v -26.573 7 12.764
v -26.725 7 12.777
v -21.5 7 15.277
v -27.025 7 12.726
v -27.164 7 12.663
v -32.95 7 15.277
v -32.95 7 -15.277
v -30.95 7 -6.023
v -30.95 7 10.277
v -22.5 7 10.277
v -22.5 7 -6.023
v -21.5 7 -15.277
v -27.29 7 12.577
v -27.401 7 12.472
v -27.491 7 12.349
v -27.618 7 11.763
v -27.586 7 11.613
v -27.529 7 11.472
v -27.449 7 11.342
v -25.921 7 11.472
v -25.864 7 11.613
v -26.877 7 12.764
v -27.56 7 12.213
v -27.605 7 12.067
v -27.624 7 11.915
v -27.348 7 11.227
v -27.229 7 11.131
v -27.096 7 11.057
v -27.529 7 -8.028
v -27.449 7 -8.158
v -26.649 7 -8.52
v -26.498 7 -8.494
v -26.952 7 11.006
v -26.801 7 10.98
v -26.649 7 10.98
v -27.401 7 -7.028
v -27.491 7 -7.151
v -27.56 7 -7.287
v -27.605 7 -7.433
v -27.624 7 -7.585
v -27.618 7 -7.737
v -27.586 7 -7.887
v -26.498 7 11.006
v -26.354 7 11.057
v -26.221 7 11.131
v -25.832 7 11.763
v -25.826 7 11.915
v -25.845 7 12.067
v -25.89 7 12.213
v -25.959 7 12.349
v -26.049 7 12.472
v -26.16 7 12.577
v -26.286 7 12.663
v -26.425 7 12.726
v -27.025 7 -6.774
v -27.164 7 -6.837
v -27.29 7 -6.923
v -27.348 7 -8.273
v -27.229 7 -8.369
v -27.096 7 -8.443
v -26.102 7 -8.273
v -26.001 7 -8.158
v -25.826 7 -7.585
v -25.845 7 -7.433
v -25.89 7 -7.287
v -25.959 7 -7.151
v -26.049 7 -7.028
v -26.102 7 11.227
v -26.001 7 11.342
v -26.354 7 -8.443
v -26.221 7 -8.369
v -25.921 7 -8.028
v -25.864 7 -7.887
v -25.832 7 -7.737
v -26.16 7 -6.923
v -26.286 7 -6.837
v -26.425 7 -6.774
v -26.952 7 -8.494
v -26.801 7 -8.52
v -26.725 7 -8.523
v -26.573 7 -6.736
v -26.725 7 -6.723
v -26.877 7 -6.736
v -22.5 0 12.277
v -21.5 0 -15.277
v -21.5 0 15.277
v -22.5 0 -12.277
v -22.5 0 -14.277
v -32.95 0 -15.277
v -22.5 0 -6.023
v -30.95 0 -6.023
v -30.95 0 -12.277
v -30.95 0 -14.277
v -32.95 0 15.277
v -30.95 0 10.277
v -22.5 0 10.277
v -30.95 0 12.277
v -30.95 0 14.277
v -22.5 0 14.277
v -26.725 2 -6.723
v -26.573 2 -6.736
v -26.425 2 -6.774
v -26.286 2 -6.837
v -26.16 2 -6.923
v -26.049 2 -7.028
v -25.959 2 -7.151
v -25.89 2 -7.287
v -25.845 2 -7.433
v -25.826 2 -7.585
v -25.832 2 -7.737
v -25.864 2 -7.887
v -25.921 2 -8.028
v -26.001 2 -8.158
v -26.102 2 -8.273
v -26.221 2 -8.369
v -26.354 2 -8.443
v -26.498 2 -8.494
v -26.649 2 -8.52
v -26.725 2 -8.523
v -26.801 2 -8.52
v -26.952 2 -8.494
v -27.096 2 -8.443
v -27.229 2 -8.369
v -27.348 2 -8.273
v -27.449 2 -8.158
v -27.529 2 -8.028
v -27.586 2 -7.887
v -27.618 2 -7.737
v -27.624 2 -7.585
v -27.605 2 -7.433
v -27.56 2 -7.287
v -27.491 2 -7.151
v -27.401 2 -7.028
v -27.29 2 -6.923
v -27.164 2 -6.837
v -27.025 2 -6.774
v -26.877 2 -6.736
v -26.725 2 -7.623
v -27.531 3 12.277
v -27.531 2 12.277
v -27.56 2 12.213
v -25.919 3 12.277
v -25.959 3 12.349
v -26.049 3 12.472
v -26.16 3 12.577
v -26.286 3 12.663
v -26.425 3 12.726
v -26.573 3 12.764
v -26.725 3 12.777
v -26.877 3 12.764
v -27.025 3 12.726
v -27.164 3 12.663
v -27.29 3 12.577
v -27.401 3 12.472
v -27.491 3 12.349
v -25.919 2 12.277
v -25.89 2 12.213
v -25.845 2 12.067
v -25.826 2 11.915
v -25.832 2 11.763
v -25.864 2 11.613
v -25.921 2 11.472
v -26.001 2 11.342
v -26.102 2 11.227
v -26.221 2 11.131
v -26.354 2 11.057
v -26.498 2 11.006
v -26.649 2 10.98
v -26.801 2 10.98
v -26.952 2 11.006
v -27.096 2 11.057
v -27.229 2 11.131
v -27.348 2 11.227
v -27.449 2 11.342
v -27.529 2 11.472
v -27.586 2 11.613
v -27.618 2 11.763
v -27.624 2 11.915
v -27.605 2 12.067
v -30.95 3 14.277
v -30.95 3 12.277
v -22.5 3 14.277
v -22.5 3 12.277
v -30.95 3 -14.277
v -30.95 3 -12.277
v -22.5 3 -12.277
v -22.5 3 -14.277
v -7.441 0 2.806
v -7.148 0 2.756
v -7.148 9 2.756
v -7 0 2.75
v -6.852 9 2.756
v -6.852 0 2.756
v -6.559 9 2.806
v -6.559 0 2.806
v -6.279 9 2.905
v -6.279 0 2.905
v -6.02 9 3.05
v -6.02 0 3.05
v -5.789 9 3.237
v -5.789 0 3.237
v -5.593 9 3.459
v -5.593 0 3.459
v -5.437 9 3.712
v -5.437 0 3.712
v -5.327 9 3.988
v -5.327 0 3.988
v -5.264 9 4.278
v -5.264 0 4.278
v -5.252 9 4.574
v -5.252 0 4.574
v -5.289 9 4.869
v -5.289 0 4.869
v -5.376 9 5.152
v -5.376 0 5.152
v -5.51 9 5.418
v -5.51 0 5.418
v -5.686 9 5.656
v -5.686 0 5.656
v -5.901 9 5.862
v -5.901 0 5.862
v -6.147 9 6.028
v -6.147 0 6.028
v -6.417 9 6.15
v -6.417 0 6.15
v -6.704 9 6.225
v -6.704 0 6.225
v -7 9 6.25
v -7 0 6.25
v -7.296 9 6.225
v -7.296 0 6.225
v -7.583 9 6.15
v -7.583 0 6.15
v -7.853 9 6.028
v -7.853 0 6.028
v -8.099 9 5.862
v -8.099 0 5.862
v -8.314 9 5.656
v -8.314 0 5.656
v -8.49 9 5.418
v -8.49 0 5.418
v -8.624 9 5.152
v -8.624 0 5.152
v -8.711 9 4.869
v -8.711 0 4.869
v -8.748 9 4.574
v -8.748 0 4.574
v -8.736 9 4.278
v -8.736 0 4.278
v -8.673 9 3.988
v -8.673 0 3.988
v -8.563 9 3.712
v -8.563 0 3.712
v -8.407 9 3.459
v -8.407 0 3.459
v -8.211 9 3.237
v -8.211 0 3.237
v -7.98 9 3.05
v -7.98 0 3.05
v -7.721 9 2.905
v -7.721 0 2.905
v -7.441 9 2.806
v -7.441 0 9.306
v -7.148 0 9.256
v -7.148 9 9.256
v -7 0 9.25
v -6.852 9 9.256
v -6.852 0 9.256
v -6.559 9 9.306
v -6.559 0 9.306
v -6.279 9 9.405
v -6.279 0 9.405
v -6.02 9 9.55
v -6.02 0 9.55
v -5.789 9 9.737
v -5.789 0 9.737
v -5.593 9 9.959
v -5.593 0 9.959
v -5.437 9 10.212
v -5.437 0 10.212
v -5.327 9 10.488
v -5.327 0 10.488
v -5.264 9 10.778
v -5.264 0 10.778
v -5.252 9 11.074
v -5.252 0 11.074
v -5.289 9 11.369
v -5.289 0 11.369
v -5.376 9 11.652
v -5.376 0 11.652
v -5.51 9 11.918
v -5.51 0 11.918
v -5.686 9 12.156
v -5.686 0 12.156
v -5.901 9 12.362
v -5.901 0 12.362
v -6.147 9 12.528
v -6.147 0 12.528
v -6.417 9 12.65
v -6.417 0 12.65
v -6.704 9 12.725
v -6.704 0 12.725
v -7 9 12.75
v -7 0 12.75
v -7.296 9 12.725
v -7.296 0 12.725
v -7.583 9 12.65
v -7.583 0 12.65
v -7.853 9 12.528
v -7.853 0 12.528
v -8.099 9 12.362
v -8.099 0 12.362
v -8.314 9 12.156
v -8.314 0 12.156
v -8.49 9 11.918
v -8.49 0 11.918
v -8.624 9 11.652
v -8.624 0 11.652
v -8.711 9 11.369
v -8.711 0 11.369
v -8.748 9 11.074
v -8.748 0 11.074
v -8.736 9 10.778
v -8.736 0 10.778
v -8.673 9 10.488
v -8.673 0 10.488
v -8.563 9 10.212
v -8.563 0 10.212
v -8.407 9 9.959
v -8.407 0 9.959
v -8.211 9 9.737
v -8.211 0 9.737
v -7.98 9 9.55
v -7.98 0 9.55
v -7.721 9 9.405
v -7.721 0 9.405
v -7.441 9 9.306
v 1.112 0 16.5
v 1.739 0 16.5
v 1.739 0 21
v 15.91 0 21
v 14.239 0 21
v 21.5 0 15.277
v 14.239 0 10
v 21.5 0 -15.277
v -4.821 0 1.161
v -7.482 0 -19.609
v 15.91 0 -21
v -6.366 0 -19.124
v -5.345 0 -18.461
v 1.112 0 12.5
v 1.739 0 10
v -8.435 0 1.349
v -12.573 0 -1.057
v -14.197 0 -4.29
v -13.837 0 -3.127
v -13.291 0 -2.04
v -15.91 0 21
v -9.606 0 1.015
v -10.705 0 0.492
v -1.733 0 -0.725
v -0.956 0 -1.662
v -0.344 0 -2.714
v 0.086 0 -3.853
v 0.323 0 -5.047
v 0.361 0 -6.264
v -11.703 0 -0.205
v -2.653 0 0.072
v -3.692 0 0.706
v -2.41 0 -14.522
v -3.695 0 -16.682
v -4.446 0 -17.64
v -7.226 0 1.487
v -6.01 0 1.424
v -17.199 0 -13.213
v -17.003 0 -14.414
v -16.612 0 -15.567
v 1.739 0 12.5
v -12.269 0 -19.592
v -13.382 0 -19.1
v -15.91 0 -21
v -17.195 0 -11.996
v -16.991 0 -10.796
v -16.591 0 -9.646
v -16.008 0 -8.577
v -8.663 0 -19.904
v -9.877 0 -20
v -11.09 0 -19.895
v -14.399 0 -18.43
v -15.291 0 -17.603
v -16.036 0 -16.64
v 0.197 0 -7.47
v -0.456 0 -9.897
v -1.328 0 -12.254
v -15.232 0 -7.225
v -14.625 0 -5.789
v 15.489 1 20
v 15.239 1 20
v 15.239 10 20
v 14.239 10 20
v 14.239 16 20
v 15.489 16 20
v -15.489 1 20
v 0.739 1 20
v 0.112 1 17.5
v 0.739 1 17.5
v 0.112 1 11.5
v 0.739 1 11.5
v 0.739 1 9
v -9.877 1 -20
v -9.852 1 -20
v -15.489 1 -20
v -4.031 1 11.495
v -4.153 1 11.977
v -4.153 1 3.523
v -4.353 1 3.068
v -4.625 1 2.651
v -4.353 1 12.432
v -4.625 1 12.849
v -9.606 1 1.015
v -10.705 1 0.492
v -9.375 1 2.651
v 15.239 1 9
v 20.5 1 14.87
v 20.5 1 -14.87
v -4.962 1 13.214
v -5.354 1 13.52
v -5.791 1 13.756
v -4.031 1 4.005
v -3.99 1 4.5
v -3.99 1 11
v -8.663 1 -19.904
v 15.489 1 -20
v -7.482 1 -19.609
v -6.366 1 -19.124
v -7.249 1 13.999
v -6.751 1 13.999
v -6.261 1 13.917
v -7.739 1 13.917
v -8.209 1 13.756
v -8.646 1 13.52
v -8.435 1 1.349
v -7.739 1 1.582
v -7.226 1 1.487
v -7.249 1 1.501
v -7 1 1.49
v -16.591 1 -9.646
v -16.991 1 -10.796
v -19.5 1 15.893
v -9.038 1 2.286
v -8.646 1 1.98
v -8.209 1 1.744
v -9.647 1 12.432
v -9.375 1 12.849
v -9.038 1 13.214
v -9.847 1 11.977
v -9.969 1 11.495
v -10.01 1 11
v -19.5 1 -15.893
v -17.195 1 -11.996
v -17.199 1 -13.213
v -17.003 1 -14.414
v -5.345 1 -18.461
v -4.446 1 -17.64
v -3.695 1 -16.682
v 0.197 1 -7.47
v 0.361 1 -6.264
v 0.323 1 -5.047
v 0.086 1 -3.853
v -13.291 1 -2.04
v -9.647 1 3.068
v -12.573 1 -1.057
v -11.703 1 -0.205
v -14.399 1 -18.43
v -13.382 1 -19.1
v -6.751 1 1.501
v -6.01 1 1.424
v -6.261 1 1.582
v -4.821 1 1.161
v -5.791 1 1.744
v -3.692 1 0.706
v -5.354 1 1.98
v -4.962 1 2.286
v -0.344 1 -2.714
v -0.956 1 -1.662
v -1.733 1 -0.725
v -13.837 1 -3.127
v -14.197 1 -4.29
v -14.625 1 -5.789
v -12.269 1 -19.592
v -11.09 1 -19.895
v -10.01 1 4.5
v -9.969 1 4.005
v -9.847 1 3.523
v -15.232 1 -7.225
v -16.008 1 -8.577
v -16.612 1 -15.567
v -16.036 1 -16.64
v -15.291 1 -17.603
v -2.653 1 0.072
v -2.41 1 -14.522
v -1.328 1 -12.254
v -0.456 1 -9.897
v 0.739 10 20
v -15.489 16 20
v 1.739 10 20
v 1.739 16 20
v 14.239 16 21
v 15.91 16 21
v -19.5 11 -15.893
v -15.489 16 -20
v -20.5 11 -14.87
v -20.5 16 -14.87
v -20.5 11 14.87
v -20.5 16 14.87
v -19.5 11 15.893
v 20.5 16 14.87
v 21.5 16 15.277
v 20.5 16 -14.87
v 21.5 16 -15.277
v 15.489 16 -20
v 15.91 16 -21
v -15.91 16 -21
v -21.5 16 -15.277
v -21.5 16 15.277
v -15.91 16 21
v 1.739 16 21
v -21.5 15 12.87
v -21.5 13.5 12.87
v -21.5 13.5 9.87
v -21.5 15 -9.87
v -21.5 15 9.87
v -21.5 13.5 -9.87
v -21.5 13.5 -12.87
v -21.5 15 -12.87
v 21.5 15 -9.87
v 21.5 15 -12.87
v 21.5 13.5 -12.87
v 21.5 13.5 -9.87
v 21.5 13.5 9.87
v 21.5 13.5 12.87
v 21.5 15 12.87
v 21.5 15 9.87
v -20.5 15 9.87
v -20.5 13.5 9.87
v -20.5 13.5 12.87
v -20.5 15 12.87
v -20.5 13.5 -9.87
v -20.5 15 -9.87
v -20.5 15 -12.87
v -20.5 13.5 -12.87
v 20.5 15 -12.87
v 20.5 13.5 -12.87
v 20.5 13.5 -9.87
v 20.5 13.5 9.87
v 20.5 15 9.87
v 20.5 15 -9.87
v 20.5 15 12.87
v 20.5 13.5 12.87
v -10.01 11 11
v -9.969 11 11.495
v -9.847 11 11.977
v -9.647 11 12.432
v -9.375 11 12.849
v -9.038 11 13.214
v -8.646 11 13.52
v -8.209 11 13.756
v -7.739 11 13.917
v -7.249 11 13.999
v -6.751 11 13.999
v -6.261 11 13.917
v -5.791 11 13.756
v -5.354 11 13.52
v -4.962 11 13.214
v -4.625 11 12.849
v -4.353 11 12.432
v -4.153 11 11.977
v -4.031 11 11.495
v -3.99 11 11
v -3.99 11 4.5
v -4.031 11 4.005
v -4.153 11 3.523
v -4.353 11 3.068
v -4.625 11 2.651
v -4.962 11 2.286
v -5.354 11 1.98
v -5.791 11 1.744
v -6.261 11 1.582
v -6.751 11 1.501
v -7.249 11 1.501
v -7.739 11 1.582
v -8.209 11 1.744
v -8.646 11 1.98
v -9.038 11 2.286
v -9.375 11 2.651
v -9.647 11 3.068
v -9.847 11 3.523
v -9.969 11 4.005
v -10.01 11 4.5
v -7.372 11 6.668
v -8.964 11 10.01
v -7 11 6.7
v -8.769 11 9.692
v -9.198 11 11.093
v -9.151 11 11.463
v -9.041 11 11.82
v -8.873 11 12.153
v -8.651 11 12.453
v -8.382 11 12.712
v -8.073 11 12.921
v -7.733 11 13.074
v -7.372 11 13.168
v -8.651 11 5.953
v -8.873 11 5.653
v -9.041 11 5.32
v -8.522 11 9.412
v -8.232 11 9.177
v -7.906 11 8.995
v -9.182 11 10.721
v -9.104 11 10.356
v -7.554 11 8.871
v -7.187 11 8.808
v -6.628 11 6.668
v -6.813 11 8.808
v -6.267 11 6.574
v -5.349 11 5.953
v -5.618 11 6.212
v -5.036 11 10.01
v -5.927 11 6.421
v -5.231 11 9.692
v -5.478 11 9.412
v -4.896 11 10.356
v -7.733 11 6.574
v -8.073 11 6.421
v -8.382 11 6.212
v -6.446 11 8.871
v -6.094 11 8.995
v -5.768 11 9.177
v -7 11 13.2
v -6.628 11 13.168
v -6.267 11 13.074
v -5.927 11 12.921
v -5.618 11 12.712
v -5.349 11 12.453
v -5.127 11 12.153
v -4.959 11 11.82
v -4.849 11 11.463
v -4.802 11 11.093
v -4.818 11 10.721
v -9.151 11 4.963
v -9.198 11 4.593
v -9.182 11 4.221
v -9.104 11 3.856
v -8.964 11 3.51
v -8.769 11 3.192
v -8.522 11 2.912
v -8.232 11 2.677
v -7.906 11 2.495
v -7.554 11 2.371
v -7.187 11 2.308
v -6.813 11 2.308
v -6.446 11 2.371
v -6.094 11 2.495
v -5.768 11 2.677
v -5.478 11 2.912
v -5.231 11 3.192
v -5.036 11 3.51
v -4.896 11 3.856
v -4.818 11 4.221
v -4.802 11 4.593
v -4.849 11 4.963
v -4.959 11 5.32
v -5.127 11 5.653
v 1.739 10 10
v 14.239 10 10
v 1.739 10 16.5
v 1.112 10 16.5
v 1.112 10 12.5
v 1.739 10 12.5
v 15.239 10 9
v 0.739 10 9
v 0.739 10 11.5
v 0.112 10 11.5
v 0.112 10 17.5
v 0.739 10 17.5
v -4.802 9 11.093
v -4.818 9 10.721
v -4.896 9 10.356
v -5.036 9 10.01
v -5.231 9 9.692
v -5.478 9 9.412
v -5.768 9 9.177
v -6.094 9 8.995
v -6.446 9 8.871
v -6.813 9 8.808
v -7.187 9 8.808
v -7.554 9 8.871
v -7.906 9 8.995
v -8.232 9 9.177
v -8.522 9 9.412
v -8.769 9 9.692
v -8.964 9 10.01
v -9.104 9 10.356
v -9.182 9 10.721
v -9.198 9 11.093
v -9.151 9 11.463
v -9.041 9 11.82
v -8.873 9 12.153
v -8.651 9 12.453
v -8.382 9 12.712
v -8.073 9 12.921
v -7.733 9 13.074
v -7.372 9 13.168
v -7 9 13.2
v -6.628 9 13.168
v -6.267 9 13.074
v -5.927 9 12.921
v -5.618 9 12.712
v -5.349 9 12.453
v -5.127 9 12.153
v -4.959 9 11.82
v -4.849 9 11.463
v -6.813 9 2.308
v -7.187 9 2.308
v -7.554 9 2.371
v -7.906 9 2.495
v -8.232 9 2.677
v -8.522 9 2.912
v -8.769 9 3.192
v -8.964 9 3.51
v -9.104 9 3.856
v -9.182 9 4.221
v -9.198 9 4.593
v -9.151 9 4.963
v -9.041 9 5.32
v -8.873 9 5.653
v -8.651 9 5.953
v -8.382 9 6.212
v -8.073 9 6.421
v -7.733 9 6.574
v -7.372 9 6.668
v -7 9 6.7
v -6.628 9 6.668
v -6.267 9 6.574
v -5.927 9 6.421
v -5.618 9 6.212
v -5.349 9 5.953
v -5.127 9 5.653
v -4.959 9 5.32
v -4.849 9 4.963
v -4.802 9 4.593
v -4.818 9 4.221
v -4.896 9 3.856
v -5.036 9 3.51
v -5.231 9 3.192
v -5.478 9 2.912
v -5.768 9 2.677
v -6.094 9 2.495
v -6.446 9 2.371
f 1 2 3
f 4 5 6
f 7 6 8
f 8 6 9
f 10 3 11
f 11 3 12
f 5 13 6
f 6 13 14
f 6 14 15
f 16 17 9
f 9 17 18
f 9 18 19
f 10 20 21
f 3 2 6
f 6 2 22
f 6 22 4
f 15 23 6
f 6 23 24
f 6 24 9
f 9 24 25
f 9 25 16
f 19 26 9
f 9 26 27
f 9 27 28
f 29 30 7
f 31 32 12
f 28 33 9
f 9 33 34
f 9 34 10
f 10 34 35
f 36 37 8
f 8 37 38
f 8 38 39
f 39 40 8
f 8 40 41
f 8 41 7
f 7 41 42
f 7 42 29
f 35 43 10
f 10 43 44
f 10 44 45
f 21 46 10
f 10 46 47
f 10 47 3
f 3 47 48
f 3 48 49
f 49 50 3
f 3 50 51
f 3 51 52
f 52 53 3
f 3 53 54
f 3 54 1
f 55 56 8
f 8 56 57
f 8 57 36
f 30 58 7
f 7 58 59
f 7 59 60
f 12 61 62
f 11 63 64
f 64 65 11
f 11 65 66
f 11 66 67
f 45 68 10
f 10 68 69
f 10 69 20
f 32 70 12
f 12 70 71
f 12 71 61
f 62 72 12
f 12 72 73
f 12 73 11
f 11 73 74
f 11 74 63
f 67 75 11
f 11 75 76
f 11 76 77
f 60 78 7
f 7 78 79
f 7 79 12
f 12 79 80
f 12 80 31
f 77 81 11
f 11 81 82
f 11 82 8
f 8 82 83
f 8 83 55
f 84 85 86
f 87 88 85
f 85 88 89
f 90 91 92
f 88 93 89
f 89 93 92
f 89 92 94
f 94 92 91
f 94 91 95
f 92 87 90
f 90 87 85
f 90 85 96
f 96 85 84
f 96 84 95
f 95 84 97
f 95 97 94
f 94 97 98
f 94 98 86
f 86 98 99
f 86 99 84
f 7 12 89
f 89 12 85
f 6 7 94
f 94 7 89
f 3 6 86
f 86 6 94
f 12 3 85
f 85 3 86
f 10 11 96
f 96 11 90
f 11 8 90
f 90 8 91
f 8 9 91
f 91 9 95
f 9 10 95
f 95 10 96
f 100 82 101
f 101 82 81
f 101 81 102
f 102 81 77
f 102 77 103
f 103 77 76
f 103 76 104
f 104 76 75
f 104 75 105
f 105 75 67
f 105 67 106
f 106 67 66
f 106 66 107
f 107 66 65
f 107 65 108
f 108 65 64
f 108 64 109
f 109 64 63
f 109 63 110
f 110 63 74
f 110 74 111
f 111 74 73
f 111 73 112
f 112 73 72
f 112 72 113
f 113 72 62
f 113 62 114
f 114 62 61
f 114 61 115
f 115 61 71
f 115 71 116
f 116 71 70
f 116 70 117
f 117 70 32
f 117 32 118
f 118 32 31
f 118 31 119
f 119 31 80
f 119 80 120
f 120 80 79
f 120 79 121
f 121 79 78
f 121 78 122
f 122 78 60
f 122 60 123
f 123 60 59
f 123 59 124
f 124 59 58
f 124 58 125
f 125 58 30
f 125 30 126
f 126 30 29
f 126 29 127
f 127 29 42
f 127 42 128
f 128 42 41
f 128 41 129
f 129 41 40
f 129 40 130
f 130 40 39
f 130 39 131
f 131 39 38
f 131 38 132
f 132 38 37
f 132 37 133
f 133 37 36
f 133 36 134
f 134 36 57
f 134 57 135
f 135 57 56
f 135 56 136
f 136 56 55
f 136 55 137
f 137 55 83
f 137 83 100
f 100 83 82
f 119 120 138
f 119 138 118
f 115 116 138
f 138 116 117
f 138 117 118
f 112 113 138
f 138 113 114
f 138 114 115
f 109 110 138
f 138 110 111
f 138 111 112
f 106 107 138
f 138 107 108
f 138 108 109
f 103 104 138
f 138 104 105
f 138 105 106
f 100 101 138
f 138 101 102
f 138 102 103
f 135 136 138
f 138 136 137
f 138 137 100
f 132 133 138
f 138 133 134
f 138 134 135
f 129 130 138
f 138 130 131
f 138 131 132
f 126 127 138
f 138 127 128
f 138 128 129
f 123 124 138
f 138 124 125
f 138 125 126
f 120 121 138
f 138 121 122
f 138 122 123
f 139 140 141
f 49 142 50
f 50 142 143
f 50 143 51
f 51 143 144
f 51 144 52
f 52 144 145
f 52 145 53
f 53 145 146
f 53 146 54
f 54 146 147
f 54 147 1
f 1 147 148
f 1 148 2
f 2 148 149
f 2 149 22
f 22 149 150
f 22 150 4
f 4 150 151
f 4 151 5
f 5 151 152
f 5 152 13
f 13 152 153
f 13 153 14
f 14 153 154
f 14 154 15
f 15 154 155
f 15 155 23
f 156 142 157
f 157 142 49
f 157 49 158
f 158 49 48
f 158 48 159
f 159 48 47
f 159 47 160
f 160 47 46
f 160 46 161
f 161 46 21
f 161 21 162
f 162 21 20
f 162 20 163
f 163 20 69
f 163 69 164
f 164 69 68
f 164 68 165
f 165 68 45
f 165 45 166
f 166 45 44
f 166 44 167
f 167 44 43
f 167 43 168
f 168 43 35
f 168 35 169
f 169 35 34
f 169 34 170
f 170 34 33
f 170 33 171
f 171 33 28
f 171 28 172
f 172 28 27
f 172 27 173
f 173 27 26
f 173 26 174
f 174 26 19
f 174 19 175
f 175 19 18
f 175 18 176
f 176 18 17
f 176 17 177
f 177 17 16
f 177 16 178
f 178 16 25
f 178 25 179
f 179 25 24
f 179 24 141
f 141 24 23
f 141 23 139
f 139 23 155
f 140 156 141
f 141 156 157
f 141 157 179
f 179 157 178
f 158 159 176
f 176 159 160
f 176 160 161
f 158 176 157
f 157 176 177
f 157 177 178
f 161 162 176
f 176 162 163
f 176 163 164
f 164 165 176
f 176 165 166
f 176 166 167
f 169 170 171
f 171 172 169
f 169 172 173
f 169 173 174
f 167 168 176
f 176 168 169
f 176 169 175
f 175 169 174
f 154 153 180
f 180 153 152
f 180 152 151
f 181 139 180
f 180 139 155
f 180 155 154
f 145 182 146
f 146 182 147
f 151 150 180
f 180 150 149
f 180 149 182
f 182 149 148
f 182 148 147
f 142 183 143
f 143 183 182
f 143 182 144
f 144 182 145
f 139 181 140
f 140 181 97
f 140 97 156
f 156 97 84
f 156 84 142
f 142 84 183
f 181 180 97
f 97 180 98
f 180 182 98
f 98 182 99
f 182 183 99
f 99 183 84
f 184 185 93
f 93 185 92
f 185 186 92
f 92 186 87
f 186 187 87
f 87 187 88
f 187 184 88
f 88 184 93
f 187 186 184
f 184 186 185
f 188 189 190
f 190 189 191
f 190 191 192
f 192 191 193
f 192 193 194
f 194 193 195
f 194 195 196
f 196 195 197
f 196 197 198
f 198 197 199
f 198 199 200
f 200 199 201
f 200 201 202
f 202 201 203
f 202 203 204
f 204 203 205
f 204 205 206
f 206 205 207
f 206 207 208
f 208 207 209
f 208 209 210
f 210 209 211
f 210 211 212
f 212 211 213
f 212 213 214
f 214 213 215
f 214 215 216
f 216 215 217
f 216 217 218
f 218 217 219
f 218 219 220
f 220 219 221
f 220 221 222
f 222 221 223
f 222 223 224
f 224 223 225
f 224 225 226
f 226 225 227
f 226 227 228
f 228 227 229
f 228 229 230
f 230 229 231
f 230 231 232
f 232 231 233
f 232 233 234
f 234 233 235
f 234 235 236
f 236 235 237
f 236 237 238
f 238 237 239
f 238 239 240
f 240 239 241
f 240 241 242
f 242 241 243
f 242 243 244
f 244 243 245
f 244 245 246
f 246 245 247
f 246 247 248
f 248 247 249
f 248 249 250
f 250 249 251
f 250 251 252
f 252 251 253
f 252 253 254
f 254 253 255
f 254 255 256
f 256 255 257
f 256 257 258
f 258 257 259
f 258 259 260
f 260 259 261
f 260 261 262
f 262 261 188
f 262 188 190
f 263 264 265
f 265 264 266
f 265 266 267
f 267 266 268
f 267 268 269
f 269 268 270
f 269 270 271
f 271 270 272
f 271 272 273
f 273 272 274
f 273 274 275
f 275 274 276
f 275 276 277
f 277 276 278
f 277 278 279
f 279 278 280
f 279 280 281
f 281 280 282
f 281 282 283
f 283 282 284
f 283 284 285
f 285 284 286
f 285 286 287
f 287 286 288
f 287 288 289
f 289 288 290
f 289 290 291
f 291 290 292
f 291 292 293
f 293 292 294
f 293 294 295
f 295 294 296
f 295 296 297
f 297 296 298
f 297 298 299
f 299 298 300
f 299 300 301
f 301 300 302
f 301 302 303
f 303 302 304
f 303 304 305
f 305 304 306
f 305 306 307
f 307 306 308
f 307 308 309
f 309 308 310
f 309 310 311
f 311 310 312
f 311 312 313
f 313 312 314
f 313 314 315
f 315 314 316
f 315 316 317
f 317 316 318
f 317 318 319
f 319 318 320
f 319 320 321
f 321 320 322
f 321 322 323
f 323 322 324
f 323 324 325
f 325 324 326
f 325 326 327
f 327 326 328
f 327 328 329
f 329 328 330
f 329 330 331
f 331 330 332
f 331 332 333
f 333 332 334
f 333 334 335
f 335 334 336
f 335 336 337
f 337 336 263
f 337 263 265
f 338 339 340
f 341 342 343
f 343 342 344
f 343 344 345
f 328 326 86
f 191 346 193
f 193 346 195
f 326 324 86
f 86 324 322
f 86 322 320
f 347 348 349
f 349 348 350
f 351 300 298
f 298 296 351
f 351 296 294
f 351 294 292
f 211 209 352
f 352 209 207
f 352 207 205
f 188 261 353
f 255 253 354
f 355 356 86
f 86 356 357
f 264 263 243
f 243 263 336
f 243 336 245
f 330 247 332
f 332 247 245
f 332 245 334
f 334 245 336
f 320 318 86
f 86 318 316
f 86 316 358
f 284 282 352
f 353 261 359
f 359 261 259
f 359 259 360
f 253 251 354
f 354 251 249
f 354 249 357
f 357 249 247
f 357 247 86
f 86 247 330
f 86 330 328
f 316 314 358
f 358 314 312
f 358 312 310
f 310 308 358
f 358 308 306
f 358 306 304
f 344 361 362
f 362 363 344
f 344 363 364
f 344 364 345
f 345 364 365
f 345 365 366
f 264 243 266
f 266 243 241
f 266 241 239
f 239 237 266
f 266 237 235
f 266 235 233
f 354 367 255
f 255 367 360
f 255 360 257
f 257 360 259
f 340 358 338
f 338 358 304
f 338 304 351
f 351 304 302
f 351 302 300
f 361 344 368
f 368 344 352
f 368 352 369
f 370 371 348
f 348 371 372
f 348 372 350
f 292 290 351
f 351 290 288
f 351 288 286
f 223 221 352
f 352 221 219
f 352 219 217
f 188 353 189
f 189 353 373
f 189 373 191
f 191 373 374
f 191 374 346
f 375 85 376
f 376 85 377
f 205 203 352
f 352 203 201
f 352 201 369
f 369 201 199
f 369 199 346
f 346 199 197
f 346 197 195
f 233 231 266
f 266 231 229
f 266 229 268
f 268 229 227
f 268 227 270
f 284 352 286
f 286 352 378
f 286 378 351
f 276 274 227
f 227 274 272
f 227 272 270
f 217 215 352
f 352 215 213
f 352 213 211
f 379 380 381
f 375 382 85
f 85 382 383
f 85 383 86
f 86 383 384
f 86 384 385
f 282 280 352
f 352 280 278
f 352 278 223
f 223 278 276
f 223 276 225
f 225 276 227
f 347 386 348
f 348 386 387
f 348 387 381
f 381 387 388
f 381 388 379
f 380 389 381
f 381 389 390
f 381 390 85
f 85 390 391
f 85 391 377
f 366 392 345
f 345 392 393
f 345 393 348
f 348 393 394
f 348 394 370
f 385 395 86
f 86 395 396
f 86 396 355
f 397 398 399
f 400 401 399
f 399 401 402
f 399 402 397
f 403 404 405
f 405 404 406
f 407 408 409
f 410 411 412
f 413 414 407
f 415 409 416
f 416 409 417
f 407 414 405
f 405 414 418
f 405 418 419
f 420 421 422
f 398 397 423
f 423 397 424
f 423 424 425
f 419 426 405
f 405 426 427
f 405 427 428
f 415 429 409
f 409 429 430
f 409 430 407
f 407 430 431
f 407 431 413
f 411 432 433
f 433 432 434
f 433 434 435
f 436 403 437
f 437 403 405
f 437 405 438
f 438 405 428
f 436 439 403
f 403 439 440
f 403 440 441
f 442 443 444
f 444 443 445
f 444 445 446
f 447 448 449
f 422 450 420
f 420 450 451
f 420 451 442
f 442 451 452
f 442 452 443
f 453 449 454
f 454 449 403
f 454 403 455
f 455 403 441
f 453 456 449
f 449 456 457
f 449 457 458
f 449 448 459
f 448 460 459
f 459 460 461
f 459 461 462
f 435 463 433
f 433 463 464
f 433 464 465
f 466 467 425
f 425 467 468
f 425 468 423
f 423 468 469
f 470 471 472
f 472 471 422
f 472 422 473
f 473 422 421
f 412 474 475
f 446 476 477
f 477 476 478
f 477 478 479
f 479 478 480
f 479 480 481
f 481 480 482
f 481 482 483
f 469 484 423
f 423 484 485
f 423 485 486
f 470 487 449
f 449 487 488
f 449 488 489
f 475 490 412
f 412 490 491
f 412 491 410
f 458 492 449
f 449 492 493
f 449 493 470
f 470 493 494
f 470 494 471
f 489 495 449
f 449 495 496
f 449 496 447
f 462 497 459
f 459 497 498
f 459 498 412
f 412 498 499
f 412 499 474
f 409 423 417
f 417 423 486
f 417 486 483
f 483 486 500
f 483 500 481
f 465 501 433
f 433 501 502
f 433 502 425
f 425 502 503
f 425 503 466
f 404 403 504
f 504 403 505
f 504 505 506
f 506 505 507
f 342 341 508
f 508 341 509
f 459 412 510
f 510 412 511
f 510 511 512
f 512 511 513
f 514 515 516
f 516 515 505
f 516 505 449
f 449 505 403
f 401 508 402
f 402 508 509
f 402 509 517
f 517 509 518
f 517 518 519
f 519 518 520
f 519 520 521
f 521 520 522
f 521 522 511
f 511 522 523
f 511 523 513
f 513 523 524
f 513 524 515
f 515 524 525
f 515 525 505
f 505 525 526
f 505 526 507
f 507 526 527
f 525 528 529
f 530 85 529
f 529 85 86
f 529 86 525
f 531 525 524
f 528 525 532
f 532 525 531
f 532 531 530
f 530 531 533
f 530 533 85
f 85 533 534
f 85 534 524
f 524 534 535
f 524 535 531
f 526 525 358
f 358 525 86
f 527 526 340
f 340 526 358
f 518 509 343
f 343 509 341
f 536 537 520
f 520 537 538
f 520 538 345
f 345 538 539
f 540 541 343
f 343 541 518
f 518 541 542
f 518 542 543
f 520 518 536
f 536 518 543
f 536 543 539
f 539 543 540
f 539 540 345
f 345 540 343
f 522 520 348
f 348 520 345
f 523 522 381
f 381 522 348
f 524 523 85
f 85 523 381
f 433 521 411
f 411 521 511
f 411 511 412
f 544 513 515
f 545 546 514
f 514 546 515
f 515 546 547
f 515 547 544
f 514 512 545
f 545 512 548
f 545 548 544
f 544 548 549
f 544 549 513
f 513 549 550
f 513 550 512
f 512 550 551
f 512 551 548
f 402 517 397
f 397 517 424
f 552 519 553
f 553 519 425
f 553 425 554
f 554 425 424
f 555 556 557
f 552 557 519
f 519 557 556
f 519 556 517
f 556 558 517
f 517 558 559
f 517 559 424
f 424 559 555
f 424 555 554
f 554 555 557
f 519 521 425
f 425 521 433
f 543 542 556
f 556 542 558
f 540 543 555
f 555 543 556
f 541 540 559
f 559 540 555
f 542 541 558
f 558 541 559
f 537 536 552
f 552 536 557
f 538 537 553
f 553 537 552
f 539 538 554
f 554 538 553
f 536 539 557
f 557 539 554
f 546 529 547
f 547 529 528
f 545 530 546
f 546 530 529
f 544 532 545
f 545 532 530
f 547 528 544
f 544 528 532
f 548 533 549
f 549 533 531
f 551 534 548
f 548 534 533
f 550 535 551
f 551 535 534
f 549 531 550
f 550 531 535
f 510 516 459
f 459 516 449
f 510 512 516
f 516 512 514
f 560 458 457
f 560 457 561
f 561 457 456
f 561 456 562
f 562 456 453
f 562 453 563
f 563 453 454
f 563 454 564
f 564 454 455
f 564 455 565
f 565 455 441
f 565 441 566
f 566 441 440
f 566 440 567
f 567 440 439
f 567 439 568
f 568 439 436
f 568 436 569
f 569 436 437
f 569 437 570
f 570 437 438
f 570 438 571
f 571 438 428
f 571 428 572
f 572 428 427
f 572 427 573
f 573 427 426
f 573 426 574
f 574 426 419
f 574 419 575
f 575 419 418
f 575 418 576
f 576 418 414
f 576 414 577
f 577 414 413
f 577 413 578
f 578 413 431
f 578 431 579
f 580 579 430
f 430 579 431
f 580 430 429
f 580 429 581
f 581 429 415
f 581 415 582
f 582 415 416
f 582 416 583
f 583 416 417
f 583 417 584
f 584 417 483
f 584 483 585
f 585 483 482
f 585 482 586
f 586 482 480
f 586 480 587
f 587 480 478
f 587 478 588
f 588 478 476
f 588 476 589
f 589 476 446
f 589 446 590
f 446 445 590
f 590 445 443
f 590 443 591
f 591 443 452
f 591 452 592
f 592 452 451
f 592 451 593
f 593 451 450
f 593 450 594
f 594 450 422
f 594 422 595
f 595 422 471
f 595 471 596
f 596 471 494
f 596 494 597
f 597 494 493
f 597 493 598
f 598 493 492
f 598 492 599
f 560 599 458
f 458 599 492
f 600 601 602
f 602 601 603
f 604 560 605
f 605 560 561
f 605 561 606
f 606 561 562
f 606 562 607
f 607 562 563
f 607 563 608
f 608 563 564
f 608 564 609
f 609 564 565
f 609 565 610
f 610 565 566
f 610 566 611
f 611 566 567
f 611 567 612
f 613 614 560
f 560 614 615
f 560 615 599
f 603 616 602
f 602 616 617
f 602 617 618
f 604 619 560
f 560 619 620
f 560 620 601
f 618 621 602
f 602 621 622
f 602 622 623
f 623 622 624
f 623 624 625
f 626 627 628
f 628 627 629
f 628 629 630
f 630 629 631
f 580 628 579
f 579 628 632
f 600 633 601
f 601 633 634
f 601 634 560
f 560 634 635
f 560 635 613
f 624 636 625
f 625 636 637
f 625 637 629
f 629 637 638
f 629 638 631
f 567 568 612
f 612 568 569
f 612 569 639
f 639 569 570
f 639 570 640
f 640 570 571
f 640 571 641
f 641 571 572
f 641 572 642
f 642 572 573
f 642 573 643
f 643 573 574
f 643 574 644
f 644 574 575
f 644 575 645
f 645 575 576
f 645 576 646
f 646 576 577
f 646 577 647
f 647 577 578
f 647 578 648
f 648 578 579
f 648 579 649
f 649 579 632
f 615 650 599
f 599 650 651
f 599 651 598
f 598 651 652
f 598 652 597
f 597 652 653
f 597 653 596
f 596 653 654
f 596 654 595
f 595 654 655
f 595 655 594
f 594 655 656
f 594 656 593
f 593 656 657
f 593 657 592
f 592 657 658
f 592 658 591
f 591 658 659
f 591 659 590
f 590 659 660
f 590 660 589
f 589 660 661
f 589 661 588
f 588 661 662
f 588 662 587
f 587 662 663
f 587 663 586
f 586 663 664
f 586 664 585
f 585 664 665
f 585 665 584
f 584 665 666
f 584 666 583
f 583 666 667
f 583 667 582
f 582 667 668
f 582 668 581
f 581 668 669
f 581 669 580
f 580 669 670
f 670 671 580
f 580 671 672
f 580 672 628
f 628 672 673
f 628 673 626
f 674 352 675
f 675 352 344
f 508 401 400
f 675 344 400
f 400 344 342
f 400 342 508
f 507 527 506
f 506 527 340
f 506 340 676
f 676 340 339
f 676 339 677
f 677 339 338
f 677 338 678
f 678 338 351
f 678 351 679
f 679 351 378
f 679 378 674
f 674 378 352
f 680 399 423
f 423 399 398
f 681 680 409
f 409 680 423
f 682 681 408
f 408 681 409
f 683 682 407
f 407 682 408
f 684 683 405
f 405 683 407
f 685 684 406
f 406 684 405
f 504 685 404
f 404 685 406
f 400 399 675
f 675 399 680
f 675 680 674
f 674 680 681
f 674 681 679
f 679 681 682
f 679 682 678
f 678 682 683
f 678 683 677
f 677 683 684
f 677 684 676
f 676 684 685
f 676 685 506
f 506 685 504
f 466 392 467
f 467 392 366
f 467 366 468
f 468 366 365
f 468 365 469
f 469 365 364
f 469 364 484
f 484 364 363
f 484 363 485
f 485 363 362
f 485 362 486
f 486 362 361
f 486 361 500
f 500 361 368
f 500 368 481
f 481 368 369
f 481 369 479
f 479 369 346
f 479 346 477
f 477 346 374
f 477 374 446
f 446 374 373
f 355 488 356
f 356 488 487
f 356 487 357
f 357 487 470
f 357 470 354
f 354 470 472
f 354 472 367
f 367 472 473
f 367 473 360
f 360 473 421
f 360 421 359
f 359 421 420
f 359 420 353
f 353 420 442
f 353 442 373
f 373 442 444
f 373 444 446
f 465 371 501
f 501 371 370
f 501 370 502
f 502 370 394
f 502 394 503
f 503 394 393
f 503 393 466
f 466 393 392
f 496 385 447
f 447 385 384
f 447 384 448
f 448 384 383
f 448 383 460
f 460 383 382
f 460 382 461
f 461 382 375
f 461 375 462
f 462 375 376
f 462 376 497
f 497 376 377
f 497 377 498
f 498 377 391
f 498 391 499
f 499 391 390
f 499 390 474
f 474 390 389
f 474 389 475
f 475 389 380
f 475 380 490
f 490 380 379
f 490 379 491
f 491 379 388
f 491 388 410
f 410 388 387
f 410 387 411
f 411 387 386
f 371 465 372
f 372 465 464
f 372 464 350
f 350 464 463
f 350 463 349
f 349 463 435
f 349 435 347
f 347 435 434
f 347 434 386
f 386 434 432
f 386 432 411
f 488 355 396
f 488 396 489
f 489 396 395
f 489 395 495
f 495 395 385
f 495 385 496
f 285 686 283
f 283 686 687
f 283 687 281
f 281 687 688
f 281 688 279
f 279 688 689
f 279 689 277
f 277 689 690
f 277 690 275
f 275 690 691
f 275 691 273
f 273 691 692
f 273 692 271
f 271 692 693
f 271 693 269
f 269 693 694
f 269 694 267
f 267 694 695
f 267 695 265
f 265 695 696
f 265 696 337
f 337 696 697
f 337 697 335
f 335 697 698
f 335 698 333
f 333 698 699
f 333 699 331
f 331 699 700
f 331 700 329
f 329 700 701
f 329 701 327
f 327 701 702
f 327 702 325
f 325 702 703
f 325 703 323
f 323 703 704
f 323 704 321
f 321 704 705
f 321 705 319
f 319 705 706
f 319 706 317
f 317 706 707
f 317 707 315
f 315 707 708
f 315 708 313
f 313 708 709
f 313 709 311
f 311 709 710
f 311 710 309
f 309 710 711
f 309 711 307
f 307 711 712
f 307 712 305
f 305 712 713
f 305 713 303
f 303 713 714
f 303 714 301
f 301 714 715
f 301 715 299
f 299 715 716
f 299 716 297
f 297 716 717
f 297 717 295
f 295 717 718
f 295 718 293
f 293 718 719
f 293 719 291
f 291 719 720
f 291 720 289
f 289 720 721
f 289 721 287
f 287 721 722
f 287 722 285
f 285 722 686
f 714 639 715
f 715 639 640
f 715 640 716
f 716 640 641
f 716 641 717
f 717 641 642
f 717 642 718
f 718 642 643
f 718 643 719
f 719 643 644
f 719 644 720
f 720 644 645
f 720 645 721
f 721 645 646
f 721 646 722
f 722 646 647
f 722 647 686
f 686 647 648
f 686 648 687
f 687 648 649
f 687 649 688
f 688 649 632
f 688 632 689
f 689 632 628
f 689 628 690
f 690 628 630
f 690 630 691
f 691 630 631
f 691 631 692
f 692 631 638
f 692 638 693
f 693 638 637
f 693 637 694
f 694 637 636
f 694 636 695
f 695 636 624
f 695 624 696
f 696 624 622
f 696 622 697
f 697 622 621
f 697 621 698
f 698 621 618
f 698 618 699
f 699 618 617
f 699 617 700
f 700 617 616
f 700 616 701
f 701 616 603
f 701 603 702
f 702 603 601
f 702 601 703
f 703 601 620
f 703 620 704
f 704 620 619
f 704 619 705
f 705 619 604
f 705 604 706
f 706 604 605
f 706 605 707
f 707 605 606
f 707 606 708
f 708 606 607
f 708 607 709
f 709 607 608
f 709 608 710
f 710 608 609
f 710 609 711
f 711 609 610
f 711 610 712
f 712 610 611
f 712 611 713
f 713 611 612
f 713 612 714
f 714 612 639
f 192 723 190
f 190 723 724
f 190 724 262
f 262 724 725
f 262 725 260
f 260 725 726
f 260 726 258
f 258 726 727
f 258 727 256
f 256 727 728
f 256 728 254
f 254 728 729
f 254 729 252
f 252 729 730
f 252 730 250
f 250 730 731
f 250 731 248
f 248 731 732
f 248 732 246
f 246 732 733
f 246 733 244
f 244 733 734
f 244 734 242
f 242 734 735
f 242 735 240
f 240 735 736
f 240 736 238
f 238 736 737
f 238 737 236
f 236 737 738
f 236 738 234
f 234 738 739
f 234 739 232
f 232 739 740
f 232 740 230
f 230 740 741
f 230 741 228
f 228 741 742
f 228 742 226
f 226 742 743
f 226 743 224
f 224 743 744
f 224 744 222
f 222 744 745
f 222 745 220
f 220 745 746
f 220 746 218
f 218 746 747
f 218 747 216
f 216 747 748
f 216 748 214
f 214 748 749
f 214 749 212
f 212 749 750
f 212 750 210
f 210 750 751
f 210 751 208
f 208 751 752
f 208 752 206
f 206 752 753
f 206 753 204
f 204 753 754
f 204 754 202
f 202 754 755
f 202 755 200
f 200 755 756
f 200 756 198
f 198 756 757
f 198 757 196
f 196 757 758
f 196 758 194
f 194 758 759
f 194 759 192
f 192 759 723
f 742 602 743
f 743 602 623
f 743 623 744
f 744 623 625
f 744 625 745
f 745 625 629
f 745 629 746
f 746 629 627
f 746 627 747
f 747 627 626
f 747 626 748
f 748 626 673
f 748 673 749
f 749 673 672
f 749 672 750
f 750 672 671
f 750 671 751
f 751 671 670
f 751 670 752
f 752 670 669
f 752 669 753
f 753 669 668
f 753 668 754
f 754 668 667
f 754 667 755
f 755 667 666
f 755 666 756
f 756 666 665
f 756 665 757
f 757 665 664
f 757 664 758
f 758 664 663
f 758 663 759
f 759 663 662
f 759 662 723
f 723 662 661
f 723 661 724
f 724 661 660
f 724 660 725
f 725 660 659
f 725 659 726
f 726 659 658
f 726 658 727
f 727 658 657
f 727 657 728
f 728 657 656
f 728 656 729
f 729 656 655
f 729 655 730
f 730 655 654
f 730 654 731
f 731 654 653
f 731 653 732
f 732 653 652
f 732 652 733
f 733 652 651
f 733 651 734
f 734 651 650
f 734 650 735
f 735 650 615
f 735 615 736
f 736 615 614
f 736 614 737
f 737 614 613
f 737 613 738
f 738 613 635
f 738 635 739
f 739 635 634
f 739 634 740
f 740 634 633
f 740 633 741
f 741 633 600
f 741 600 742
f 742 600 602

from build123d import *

# Parameters (mm, degrees)
OUTER_SHELL_EXTRUDE_DEPTH      = 16
BOTTOM_START                   = 1
BOTTOM_DEPTH                   = 34.047760572
CLIPS_EXTRUDE_DEPTH            = 51.457903246
CLIPS_EXTRUDE_DEPTH_BACK       = 51.457903246
CLIPS_W                        = 3
CLIPS_H                        = 1.5
PCB_SUPPORT_EXTRUDE_DEPTH      = 10
LED_SUPPORT_EXTRUDE_DEPTH      = 10
LEDS_EXTRUDE_DEPTH             = 35.047760572
LEDS_EXTRUDE_DEPTH_BACK        = 35.047760572
LED_HOLES_R                    = 1.75
KNX_PLUG_EXTRUDE_DEPTH         = 35.047760572
KNX_PLUG_SUPPORT_EXTRUDE_DEPTH = 9
SERVO_SHELL_W                  = 11.45
SERVO_SHELL_H                  = 30.553981132
SERVO_SHELL_W_2                = 8.45
SERVO_SHELL_H_2                = 16.3
SERVO_SHELL_EXTRUDE_DEPTH      = 7
ROTOR_CUT_EXTRUDE_DEPTH        = 1
SKETCH14_R                     = 0.9
CUT_EXTRUDE11_DEPTH            = 5
SKETCH15_W                     = 8.45
SKETCH15_H                     = 2
CUT_EXTRUDE12_DEPTH            = 3
SKETCH16_R                     = 2.2
CUT_EXTRUDE13_DEPTH            = 2


with BuildPart() as part:
    # Outer-Shell → Outer-Shell-Extrude (new body)
    with BuildSketch(Plane(origin=(0, 0, 0), x_dir=(1, 0, 0), z_dir=(0, 1, 0))):
        Polygon((-21.5, 15.276990566), (-15.910083809, 21), (15.910083809, 21), (21.5, 15.276990566), (21.5, -15.276990566), (15.910083809, -21), (-15.910083809, -21), (-21.5, -15.276990566), align=None)
    extrude(amount=OUTER_SHELL_EXTRUDE_DEPTH)

    # PCB-Outline → Bottom (cut, through all)
    with BuildSketch(Plane(origin=(0, 0, 0), x_dir=(1, 0, 0), z_dir=(0, 1, 0)).offset(BOTTOM_START)):
        Polygon((-15.488962048, 20), (-20.5, 14.869651621), (-20.5, -14.869651621), (-15.488962048, -20), (15.488962048, -20), (20.5, -14.869651621), (20.5, 14.869651621), (15.488962048, 20), align=None)
    extrude(amount=BOTTOM_DEPTH, mode=Mode.SUBTRACT)

    # Clips → Clips-Extrude (cut, two sides: drawn at the far end of the back side and taken through both)
    with BuildSketch(Plane.ZY.offset(21.5).offset(-CLIPS_EXTRUDE_DEPTH_BACK)):
        with Locations((-11.369651621, 14.25)):
            Rectangle(CLIPS_W, CLIPS_H)
        with Locations((11.369651621, 14.25)):
            Rectangle(CLIPS_W, CLIPS_H)
    extrude(amount=CLIPS_EXTRUDE_DEPTH + CLIPS_EXTRUDE_DEPTH_BACK, mode=Mode.SUBTRACT)

    # PCB-Support → PCB-Support-Extrude (add)
    with BuildSketch(Plane(origin=(0, 1, 0), x_dir=(1, 0, 0), z_dir=(0, 1, 0))):
        Polygon((-19.5, 15.893461145), (-20.5, 14.869651621), (-20.5, -14.869651621), (-19.5, -15.893461145), align=None)
    extrude(amount=PCB_SUPPORT_EXTRUDE_DEPTH)

    # LED-Support → LED-Support-Extrude (add)
    with BuildSketch(Plane(origin=(0, 1, 0), x_dir=(1, 0, 0), z_dir=(0, 1, 0))):
        with BuildLine():
            Line((-10.00959418, -11), (-10.00959418, -4.5))
            ThreePointArc((-10.00959418, -4.5), (-7, -1.49040582), (-3.99040582, -4.5))
            Line((-3.99040582, -4.5), (-3.99040582, -11))
            ThreePointArc((-3.99040582, -11), (-7, -14.00959418), (-10.00959418, -11))
        make_face()
    extrude(amount=LED_SUPPORT_EXTRUDE_DEPTH)

    # led-holes → LEDs-Extrude (cut, two sides: drawn at the far end of the back side and taken through both)
    with BuildSketch(Plane(origin=(0, 0, 0), x_dir=(1, 0, 0), z_dir=(0, 1, 0)).offset(-LEDS_EXTRUDE_DEPTH_BACK)):
        with Locations(Location((-7, -11, 0), (0, 0, 270))):
            Circle(LED_HOLES_R)
        with Locations(Location((-7, -4.5, 0), (0, 0, 270))):
            Circle(LED_HOLES_R)
    extrude(amount=LEDS_EXTRUDE_DEPTH + LEDS_EXTRUDE_DEPTH_BACK, mode=Mode.SUBTRACT)

    # KNX-Plug → KNX-Plug-Extrude (cut, through all)
    with BuildSketch(Plane(origin=(0, 16, 0), x_dir=(1, 0, 0), z_dir=(0, 1, 0))):
        Polygon((14.238962048, -10), (14.238962048, -21), (1.738962048, -21), (1.738962048, -16.5), (1.111583994, -16.5), (1.111583994, -12.5), (1.738962048, -12.5), (1.738962048, -10), align=None)
    extrude(amount=-KNX_PLUG_EXTRUDE_DEPTH, mode=Mode.SUBTRACT)

    # KNX-Plug-Support → KNX-Plug-Support-Extrude (add)
    with BuildSketch(Plane(origin=(0, 1, 0), x_dir=(1, 0, 0), z_dir=(0, 1, 0))):
        Polygon((0.738962048, -17.5), (0.738962048, -20), (1.738962048, -20), (1.738962048, -16.5), (1.111583994, -16.5), (1.111583994, -12.5), (1.738962048, -12.5), (1.738962048, -10), (14.238962048, -10), (14.238962048, -20), (15.238962048, -20), (15.238962048, -9), (0.738962048, -9), (0.738962048, -11.5), (0.111583994, -11.5), (0.111583994, -17.5), align=None)
    extrude(amount=KNX_PLUG_SUPPORT_EXTRUDE_DEPTH)

    # Rotor → Rotor-Cut-Extrude (cut)
    with BuildSketch(Plane(origin=(0, 0, 0), x_dir=(1, 0, 0), z_dir=(0, 1, 0))):
        with BuildLine():
            ThreePointArc((0.197085573, 7.469985253), (-1.327867915, 12.25384793), (-3.695115483, 16.681823111))
            ThreePointArc((-3.695115483, 16.681823111), (-13.904106465, 18.785997776), (-16.008281129, 8.577006794))
            ThreePointArc((-16.008281129, 8.577006794), (-14.906706926, 6.516494283), (-14.197085573, 4.290373201))
            ThreePointArc((-14.197085573, 4.290373201), (-5.410193974, -1.316906346), (0.197085573, 7.469985253))
        make_face()
    extrude(amount=ROTOR_CUT_EXTRUDE_DEPTH, mode=Mode.SUBTRACT)

    # Sketch16 → Cut-Extrude13 (cut)
    with BuildSketch(Plane(origin=(0, 11, 0), x_dir=(1, 0, 0), z_dir=(0, 1, 0))):
        with Locations(Location((-7, -11, 0), (0, 0, 270))):
            Circle(SKETCH16_R)
        with Locations(Location((-7, -4.5, 0), (0, 0, 270))):
            Circle(SKETCH16_R)
    extrude(amount=-CUT_EXTRUDE13_DEPTH, mode=Mode.SUBTRACT)


with BuildPart() as body_2:
    # Servo-Shell → Servo-Shell-Extrude (new body)
    with BuildSketch(Plane(origin=(0, 0, 0), x_dir=(1, 0, 0), z_dir=(0, 1, 0))):
        with Locations((-27.225, 0)):
            Rectangle(SERVO_SHELL_W, SERVO_SHELL_H)
        with Locations((-26.725, -2.126990566)):
            Rectangle(SERVO_SHELL_W_2, SERVO_SHELL_H_2, mode=Mode.SUBTRACT)
    extrude(amount=SERVO_SHELL_EXTRUDE_DEPTH)

    # Sketch14 → Cut-Extrude11 (cut)
    with BuildSketch(Plane(origin=(0, 7, 0), x_dir=(1, 0, 0), z_dir=(0, 1, 0))):
        with Locations(Location((-26.725, -11.876990566, 0), (0, 0, 270))):
            Circle(SKETCH14_R)
        with Locations(Location((-26.725, 7.623009434, 0), (0, 0, 90))):
            Circle(SKETCH14_R)
    extrude(amount=-CUT_EXTRUDE11_DEPTH, mode=Mode.SUBTRACT)

    # Sketch15 → Cut-Extrude12 (cut)
    with BuildSketch(Plane.XZ):
        with Locations((-26.725, 13.276990566)):
            Rectangle(SKETCH15_W, SKETCH15_H)
        with Locations((-26.725, -13.276990566)):
            Rectangle(SKETCH15_W, SKETCH15_H)
    extrude(amount=-CUT_EXTRUDE12_DEPTH, mode=Mode.SUBTRACT)


solid = Compound([part.part, body_2.part])
